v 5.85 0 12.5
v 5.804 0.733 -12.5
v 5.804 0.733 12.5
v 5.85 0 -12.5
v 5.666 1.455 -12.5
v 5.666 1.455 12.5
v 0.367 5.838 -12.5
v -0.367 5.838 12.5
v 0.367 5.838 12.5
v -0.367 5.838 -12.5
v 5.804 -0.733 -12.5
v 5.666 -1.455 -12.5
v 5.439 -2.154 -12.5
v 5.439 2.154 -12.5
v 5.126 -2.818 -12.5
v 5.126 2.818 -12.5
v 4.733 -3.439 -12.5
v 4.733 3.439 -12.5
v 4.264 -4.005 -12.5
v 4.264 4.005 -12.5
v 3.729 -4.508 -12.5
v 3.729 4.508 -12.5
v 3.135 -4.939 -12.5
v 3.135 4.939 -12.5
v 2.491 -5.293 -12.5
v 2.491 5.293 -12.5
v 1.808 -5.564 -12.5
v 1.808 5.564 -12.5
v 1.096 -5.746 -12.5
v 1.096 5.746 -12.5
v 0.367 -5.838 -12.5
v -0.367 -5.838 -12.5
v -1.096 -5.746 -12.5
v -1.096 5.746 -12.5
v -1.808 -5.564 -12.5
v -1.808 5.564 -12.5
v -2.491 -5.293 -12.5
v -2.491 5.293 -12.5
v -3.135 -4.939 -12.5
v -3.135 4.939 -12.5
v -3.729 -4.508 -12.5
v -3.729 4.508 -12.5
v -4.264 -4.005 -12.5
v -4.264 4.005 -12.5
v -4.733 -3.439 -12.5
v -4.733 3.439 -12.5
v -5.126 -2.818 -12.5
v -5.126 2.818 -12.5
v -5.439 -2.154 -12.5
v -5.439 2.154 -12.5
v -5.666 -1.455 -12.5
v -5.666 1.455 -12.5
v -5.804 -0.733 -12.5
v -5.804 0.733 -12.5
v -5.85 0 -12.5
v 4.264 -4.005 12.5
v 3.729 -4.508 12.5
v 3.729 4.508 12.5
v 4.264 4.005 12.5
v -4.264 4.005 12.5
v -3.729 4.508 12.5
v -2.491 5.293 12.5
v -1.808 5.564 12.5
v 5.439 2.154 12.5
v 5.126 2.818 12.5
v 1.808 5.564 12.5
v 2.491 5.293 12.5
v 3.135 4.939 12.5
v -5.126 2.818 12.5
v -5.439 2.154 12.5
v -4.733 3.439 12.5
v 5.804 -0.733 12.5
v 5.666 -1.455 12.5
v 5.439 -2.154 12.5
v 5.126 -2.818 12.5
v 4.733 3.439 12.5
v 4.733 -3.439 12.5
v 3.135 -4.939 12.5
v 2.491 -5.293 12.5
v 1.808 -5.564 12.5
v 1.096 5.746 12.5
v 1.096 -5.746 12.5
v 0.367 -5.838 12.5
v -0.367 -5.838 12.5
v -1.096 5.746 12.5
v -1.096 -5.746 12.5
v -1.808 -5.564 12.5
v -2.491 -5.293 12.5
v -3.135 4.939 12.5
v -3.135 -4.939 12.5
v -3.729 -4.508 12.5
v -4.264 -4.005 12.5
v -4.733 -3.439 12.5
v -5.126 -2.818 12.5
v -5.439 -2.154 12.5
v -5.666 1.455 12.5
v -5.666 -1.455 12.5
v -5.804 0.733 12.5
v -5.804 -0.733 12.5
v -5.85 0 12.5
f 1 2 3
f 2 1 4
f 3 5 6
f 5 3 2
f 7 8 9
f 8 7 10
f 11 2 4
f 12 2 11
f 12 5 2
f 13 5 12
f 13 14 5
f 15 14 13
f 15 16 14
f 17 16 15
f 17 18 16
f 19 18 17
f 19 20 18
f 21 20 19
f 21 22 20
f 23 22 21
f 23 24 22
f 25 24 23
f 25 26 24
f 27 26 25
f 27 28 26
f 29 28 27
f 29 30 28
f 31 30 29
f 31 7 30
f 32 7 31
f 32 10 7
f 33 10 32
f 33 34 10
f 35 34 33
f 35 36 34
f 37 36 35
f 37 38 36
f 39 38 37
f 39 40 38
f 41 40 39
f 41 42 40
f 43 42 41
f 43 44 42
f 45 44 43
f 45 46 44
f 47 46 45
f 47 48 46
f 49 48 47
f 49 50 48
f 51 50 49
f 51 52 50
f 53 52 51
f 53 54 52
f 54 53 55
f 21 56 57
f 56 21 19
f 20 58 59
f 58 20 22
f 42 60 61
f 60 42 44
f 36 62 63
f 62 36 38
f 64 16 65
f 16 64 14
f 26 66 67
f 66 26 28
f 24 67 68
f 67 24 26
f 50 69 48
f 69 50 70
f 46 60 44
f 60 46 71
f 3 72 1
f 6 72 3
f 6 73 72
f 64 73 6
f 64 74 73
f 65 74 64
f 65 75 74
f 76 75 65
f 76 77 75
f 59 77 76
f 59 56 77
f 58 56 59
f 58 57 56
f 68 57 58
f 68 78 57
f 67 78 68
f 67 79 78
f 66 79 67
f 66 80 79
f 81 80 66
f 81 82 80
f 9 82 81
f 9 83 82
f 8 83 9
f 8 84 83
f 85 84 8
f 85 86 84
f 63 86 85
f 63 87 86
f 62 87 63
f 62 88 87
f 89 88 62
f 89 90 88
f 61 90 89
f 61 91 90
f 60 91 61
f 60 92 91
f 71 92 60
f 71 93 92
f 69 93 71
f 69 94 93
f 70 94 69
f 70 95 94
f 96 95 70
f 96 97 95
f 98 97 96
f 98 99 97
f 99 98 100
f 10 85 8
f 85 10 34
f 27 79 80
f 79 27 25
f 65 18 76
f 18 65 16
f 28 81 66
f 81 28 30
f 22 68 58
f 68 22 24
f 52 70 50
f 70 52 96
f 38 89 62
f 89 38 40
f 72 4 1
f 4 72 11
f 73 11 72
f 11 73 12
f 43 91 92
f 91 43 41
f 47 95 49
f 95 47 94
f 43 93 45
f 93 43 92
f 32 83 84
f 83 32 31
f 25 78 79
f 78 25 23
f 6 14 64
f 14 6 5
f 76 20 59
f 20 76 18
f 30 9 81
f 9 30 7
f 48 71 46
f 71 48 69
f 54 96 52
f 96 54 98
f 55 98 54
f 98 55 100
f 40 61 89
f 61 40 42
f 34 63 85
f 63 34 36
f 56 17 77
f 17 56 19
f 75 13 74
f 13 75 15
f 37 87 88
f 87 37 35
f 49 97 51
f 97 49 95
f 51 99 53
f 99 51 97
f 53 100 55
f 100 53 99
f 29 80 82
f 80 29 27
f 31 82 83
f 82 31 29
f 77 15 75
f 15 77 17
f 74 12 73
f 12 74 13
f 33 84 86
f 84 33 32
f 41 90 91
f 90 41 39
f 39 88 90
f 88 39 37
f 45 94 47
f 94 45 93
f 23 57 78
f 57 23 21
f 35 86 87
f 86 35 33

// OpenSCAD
$fn = 50;


difference() {
	union() {
		translate(v = [0, 0, -12.5000000000]) {
			cylinder(h = 25, r = 5.8500000000);
		}
	}
	union() {
		translate(v = [0, 0, -100.0000000000]) {
			cylinder(h = 200, r = 0);
		}
	}
}
